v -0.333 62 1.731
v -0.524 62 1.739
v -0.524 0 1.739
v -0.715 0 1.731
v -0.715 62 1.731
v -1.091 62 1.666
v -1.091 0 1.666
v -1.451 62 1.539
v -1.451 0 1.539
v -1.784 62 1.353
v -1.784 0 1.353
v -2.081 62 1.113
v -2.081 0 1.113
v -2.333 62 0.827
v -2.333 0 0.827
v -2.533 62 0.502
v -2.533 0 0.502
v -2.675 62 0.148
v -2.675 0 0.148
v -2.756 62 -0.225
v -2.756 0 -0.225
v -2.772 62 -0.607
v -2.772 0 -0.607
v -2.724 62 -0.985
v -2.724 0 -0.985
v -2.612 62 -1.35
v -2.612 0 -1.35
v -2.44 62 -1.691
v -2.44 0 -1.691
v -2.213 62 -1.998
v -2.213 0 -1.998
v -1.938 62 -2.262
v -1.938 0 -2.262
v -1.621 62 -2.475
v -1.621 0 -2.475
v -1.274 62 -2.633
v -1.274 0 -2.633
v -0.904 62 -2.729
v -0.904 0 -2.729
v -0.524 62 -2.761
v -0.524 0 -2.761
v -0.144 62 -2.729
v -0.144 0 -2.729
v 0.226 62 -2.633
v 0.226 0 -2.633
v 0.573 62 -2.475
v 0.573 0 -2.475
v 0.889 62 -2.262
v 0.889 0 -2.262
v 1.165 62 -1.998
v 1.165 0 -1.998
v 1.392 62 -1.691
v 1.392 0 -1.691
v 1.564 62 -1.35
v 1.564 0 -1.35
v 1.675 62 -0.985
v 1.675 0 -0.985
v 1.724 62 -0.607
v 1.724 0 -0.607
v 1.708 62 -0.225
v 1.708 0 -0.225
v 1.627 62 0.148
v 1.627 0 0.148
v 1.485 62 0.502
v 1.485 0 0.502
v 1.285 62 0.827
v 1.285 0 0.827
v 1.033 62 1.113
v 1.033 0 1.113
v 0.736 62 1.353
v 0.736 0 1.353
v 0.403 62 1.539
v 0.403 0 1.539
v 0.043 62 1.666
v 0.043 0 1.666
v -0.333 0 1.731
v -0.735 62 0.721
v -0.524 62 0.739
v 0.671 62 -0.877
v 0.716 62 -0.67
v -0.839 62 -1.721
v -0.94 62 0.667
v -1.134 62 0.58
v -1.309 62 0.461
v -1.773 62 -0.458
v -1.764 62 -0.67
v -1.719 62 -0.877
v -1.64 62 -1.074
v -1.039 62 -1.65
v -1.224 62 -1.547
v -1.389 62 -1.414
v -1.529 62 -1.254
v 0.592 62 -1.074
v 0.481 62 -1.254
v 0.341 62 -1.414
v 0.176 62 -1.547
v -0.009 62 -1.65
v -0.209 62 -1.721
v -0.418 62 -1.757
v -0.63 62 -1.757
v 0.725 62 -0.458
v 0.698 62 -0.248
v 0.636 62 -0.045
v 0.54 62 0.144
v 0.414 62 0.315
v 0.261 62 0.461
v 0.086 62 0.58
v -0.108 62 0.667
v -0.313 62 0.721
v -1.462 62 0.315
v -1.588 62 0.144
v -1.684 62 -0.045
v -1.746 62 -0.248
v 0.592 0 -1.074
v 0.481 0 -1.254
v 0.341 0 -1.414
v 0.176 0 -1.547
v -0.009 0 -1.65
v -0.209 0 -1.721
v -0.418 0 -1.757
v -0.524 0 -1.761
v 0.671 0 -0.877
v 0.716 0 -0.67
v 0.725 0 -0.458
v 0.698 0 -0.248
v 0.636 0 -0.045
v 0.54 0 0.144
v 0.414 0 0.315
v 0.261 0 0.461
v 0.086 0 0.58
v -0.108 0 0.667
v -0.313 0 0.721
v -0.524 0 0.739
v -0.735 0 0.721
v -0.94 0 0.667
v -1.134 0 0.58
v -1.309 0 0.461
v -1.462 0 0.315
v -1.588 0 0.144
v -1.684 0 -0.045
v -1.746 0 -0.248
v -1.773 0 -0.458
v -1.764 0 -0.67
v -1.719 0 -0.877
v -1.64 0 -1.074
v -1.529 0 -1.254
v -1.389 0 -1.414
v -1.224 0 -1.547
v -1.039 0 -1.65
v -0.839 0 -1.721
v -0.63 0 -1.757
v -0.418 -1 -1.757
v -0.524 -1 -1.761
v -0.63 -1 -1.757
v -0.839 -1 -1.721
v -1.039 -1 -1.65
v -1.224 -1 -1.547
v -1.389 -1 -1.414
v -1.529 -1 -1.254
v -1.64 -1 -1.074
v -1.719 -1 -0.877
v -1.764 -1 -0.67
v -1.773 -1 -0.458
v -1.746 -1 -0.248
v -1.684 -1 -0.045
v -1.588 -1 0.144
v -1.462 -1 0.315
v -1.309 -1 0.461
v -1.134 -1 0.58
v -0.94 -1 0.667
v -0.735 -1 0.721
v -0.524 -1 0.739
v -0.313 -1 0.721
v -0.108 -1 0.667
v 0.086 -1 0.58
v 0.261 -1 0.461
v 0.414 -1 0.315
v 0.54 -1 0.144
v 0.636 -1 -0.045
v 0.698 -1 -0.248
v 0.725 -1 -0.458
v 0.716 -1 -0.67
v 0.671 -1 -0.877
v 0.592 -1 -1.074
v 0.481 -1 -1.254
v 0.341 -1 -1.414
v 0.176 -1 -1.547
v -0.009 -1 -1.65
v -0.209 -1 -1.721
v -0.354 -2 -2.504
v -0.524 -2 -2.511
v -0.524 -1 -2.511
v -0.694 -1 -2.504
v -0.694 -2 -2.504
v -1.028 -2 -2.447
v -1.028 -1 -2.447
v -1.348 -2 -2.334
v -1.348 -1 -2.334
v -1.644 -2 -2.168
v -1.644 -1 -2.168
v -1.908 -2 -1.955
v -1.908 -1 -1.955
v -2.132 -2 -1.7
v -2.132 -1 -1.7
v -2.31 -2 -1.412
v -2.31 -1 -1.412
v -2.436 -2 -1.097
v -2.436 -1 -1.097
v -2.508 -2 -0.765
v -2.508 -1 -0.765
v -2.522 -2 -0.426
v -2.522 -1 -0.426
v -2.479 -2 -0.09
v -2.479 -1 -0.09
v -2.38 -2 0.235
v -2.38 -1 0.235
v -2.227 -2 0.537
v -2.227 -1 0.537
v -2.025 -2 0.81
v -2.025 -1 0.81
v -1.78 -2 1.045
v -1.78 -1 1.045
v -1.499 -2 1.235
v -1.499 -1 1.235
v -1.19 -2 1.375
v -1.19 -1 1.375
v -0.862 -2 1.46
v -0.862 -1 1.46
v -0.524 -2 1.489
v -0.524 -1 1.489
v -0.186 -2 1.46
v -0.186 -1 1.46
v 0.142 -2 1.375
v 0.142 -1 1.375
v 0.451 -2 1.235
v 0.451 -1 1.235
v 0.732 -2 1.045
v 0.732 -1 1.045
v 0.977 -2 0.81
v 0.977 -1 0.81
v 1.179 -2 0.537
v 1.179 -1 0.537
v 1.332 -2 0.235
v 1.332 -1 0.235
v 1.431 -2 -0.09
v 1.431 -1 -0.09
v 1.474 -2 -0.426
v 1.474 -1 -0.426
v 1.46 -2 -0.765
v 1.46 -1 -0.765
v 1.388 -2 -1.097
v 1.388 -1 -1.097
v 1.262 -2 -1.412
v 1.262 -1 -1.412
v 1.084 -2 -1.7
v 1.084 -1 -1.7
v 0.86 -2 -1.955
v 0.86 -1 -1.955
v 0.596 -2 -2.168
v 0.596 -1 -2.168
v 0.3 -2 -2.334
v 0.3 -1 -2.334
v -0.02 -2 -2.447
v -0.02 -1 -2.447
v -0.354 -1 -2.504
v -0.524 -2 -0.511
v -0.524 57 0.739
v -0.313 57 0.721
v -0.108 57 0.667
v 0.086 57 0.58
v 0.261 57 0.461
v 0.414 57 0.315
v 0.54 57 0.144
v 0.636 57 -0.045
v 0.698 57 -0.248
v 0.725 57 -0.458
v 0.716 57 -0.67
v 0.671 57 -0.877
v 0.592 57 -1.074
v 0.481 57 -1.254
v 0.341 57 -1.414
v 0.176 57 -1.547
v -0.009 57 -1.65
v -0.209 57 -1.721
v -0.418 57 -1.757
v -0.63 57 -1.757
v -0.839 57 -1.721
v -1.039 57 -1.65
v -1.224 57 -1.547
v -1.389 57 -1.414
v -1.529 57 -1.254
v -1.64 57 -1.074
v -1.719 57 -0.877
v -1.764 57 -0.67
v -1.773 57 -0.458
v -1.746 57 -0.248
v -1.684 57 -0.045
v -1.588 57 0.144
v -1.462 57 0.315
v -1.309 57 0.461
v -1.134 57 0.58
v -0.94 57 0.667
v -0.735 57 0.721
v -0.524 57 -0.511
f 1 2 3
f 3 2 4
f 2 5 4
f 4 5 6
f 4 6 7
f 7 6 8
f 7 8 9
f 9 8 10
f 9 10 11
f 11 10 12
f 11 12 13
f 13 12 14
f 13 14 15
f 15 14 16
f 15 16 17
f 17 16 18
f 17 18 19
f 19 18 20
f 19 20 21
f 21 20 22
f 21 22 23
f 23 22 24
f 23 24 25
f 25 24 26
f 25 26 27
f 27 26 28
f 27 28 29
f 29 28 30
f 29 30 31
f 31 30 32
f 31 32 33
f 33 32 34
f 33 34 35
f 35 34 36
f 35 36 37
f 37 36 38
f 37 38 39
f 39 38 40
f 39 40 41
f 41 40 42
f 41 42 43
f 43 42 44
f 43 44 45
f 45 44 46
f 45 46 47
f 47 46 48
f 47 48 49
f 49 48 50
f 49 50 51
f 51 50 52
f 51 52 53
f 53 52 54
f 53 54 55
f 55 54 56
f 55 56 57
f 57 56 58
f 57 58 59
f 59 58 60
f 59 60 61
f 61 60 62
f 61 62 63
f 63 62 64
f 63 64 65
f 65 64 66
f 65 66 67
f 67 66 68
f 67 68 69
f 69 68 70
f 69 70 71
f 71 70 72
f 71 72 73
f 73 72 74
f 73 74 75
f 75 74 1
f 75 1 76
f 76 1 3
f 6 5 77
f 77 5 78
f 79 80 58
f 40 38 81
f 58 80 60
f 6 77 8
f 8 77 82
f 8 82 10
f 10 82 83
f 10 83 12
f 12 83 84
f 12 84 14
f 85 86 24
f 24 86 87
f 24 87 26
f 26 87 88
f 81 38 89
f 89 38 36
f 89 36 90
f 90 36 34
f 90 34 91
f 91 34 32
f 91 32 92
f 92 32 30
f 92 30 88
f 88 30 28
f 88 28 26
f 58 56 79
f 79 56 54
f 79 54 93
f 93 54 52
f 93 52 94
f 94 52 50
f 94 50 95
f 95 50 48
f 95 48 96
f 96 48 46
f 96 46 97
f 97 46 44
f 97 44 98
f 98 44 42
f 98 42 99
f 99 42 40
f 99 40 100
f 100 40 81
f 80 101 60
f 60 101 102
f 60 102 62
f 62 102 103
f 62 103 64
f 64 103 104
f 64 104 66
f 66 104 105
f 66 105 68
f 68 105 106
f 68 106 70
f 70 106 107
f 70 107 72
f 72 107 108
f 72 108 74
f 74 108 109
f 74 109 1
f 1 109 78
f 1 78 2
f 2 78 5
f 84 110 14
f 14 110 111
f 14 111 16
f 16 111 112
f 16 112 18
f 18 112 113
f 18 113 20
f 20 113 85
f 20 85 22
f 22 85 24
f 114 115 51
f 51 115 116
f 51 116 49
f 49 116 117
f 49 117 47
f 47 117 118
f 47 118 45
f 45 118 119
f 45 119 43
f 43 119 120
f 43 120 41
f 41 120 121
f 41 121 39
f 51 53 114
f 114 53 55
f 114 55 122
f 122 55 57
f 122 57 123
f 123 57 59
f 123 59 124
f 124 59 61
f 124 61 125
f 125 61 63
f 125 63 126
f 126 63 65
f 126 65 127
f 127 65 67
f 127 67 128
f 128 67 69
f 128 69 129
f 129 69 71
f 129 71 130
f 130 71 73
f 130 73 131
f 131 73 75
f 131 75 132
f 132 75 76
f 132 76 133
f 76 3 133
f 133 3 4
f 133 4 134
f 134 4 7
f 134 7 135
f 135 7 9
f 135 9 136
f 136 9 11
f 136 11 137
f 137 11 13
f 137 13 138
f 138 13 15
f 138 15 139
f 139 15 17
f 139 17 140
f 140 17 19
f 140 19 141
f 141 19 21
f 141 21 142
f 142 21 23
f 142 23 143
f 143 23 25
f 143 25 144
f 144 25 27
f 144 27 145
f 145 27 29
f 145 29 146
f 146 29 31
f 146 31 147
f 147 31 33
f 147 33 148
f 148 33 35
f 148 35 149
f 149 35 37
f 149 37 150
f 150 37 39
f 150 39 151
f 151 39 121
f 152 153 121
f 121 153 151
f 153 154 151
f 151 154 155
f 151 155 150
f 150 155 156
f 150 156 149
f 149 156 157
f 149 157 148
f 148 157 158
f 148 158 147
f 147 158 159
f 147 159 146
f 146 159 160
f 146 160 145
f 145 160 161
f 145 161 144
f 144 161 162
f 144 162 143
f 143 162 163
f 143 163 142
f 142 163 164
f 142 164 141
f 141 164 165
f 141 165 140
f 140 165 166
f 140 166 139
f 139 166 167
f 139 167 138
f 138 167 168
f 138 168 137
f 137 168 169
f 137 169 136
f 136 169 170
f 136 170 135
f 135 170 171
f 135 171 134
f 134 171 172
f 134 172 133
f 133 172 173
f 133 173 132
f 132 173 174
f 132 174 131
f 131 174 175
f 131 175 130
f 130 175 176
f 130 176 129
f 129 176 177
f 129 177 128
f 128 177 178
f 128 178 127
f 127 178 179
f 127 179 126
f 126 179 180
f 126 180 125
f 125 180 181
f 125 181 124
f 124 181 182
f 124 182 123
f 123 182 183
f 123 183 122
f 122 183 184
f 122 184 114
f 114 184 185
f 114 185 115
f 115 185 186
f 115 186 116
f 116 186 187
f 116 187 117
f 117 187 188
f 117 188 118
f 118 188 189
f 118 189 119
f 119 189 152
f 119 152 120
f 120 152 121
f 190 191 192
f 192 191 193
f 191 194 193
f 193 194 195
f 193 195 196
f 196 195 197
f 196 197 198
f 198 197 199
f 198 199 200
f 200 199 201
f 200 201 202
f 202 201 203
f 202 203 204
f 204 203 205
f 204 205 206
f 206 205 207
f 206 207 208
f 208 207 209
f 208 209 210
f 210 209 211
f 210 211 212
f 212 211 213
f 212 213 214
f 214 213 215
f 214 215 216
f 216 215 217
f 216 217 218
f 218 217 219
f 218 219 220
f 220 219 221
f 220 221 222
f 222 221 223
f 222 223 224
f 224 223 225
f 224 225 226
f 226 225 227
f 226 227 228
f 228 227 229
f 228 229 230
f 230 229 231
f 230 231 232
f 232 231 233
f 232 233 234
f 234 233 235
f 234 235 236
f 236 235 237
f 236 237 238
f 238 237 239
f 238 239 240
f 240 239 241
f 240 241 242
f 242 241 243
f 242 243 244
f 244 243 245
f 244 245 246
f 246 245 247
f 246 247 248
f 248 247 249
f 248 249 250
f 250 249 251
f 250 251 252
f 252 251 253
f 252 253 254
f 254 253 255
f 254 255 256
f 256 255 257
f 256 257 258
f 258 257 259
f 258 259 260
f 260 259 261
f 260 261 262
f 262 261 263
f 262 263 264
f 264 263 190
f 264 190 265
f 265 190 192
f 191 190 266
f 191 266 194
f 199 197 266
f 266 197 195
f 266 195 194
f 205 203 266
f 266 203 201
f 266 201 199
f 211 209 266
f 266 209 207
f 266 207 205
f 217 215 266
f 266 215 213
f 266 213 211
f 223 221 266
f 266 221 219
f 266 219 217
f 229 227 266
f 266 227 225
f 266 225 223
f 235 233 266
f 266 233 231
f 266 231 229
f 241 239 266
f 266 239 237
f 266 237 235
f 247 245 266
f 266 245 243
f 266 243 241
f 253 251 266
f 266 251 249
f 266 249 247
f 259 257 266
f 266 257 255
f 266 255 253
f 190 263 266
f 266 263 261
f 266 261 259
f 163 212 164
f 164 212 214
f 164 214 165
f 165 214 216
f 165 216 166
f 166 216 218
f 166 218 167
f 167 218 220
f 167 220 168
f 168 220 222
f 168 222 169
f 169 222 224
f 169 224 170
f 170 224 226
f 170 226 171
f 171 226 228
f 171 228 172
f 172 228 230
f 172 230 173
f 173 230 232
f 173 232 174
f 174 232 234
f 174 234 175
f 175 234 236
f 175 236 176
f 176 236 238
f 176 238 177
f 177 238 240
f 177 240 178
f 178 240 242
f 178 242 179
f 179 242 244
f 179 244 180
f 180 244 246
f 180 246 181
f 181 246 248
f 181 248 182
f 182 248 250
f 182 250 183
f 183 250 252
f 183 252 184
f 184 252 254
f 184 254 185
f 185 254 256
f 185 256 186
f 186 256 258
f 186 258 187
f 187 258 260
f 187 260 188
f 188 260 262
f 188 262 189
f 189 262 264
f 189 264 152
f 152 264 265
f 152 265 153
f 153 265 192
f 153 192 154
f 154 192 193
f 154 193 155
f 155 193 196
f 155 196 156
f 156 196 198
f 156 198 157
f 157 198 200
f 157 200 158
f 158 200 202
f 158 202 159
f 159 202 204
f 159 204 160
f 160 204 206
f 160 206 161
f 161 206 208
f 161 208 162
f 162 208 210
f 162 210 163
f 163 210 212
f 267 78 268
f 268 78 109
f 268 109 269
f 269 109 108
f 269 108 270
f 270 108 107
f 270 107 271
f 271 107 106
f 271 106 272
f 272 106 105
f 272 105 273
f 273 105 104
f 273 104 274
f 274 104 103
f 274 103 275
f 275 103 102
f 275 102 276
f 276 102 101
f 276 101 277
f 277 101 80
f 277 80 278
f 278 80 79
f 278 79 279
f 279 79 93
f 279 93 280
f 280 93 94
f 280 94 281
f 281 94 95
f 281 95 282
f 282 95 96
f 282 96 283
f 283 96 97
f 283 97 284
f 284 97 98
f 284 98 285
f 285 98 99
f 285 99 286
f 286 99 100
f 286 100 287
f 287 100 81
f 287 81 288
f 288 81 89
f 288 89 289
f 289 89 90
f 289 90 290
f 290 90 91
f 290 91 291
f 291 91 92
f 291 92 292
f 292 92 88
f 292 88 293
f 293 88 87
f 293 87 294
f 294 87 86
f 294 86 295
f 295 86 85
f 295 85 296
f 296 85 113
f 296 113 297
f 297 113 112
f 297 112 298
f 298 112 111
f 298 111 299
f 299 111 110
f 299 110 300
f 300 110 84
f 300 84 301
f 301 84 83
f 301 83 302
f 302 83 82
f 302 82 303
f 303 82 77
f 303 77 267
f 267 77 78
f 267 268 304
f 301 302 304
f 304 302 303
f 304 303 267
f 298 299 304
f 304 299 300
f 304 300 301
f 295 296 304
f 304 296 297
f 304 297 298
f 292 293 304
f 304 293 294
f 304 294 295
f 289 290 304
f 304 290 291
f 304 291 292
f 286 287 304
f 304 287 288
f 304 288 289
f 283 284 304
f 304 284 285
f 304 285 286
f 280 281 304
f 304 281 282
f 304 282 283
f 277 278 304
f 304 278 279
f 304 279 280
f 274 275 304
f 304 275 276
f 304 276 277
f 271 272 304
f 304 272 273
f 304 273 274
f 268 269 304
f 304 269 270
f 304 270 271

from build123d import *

# Parameters (mm, degrees)
SKETCH1_R           = 2.25
BOSS_EXTRUDE1_DEPTH = 62
SKETCH1_3_R         = 1
BOSS_EXTRUDE2_DEPTH = 1
SKETCH5_R           = 1.25
BOSS_EXTRUDE3_DEPTH = 1
SKETCH6_R           = 2
BOSS_EXTRUDE4_DEPTH = 1
SKETCH12_R          = 1.25
CUT_EXTRUDE1_DEPTH  = 5


with BuildPart() as part:
    # Sketch1 → Boss-Extrude1 (new body)
    with BuildSketch(Plane(origin=(0, 0, 0), x_dir=(1, 0, 0), z_dir=(0, 1, 0))):
        with Locations((-0.522013312, 0.511138034)):
            Circle(SKETCH1_R)
    extrude(amount=BOSS_EXTRUDE1_DEPTH)

    # Sketch1<3> → Boss-Extrude2 (add)
    with BuildSketch(Plane(origin=(0, 0, 0), x_dir=(1, 0, 0), z_dir=(0, 1, 0))):
        with Locations((-0.522013312, 0.511138034)):
            Circle(SKETCH1_3_R)
    extrude(amount=BOSS_EXTRUDE2_DEPTH)

    # Sketch5 → Boss-Extrude3 (add)
    with BuildSketch(Plane.XZ):
        with Locations((-0.522013312, -0.511138034)):
            Circle(SKETCH5_R)
    extrude(amount=BOSS_EXTRUDE3_DEPTH)

    # Sketch6 → Boss-Extrude4 (add)
    with BuildSketch(Plane.XZ.offset(1)):
        with Locations((-0.522013312, -0.511138034)):
            Circle(SKETCH6_R)
    extrude(amount=BOSS_EXTRUDE4_DEPTH)

    # Sketch12 → Cut-Extrude1 (cut)
    with BuildSketch(Plane(origin=(0, 62, 0), x_dir=(1, 0, 0), z_dir=(0, 1, 0))):
        with Locations((-0.522013312, 0.511138034)):
            Circle(SKETCH12_R)
    extrude(amount=-CUT_EXTRUDE1_DEPTH, mode=Mode.SUBTRACT)


solid = part.part
